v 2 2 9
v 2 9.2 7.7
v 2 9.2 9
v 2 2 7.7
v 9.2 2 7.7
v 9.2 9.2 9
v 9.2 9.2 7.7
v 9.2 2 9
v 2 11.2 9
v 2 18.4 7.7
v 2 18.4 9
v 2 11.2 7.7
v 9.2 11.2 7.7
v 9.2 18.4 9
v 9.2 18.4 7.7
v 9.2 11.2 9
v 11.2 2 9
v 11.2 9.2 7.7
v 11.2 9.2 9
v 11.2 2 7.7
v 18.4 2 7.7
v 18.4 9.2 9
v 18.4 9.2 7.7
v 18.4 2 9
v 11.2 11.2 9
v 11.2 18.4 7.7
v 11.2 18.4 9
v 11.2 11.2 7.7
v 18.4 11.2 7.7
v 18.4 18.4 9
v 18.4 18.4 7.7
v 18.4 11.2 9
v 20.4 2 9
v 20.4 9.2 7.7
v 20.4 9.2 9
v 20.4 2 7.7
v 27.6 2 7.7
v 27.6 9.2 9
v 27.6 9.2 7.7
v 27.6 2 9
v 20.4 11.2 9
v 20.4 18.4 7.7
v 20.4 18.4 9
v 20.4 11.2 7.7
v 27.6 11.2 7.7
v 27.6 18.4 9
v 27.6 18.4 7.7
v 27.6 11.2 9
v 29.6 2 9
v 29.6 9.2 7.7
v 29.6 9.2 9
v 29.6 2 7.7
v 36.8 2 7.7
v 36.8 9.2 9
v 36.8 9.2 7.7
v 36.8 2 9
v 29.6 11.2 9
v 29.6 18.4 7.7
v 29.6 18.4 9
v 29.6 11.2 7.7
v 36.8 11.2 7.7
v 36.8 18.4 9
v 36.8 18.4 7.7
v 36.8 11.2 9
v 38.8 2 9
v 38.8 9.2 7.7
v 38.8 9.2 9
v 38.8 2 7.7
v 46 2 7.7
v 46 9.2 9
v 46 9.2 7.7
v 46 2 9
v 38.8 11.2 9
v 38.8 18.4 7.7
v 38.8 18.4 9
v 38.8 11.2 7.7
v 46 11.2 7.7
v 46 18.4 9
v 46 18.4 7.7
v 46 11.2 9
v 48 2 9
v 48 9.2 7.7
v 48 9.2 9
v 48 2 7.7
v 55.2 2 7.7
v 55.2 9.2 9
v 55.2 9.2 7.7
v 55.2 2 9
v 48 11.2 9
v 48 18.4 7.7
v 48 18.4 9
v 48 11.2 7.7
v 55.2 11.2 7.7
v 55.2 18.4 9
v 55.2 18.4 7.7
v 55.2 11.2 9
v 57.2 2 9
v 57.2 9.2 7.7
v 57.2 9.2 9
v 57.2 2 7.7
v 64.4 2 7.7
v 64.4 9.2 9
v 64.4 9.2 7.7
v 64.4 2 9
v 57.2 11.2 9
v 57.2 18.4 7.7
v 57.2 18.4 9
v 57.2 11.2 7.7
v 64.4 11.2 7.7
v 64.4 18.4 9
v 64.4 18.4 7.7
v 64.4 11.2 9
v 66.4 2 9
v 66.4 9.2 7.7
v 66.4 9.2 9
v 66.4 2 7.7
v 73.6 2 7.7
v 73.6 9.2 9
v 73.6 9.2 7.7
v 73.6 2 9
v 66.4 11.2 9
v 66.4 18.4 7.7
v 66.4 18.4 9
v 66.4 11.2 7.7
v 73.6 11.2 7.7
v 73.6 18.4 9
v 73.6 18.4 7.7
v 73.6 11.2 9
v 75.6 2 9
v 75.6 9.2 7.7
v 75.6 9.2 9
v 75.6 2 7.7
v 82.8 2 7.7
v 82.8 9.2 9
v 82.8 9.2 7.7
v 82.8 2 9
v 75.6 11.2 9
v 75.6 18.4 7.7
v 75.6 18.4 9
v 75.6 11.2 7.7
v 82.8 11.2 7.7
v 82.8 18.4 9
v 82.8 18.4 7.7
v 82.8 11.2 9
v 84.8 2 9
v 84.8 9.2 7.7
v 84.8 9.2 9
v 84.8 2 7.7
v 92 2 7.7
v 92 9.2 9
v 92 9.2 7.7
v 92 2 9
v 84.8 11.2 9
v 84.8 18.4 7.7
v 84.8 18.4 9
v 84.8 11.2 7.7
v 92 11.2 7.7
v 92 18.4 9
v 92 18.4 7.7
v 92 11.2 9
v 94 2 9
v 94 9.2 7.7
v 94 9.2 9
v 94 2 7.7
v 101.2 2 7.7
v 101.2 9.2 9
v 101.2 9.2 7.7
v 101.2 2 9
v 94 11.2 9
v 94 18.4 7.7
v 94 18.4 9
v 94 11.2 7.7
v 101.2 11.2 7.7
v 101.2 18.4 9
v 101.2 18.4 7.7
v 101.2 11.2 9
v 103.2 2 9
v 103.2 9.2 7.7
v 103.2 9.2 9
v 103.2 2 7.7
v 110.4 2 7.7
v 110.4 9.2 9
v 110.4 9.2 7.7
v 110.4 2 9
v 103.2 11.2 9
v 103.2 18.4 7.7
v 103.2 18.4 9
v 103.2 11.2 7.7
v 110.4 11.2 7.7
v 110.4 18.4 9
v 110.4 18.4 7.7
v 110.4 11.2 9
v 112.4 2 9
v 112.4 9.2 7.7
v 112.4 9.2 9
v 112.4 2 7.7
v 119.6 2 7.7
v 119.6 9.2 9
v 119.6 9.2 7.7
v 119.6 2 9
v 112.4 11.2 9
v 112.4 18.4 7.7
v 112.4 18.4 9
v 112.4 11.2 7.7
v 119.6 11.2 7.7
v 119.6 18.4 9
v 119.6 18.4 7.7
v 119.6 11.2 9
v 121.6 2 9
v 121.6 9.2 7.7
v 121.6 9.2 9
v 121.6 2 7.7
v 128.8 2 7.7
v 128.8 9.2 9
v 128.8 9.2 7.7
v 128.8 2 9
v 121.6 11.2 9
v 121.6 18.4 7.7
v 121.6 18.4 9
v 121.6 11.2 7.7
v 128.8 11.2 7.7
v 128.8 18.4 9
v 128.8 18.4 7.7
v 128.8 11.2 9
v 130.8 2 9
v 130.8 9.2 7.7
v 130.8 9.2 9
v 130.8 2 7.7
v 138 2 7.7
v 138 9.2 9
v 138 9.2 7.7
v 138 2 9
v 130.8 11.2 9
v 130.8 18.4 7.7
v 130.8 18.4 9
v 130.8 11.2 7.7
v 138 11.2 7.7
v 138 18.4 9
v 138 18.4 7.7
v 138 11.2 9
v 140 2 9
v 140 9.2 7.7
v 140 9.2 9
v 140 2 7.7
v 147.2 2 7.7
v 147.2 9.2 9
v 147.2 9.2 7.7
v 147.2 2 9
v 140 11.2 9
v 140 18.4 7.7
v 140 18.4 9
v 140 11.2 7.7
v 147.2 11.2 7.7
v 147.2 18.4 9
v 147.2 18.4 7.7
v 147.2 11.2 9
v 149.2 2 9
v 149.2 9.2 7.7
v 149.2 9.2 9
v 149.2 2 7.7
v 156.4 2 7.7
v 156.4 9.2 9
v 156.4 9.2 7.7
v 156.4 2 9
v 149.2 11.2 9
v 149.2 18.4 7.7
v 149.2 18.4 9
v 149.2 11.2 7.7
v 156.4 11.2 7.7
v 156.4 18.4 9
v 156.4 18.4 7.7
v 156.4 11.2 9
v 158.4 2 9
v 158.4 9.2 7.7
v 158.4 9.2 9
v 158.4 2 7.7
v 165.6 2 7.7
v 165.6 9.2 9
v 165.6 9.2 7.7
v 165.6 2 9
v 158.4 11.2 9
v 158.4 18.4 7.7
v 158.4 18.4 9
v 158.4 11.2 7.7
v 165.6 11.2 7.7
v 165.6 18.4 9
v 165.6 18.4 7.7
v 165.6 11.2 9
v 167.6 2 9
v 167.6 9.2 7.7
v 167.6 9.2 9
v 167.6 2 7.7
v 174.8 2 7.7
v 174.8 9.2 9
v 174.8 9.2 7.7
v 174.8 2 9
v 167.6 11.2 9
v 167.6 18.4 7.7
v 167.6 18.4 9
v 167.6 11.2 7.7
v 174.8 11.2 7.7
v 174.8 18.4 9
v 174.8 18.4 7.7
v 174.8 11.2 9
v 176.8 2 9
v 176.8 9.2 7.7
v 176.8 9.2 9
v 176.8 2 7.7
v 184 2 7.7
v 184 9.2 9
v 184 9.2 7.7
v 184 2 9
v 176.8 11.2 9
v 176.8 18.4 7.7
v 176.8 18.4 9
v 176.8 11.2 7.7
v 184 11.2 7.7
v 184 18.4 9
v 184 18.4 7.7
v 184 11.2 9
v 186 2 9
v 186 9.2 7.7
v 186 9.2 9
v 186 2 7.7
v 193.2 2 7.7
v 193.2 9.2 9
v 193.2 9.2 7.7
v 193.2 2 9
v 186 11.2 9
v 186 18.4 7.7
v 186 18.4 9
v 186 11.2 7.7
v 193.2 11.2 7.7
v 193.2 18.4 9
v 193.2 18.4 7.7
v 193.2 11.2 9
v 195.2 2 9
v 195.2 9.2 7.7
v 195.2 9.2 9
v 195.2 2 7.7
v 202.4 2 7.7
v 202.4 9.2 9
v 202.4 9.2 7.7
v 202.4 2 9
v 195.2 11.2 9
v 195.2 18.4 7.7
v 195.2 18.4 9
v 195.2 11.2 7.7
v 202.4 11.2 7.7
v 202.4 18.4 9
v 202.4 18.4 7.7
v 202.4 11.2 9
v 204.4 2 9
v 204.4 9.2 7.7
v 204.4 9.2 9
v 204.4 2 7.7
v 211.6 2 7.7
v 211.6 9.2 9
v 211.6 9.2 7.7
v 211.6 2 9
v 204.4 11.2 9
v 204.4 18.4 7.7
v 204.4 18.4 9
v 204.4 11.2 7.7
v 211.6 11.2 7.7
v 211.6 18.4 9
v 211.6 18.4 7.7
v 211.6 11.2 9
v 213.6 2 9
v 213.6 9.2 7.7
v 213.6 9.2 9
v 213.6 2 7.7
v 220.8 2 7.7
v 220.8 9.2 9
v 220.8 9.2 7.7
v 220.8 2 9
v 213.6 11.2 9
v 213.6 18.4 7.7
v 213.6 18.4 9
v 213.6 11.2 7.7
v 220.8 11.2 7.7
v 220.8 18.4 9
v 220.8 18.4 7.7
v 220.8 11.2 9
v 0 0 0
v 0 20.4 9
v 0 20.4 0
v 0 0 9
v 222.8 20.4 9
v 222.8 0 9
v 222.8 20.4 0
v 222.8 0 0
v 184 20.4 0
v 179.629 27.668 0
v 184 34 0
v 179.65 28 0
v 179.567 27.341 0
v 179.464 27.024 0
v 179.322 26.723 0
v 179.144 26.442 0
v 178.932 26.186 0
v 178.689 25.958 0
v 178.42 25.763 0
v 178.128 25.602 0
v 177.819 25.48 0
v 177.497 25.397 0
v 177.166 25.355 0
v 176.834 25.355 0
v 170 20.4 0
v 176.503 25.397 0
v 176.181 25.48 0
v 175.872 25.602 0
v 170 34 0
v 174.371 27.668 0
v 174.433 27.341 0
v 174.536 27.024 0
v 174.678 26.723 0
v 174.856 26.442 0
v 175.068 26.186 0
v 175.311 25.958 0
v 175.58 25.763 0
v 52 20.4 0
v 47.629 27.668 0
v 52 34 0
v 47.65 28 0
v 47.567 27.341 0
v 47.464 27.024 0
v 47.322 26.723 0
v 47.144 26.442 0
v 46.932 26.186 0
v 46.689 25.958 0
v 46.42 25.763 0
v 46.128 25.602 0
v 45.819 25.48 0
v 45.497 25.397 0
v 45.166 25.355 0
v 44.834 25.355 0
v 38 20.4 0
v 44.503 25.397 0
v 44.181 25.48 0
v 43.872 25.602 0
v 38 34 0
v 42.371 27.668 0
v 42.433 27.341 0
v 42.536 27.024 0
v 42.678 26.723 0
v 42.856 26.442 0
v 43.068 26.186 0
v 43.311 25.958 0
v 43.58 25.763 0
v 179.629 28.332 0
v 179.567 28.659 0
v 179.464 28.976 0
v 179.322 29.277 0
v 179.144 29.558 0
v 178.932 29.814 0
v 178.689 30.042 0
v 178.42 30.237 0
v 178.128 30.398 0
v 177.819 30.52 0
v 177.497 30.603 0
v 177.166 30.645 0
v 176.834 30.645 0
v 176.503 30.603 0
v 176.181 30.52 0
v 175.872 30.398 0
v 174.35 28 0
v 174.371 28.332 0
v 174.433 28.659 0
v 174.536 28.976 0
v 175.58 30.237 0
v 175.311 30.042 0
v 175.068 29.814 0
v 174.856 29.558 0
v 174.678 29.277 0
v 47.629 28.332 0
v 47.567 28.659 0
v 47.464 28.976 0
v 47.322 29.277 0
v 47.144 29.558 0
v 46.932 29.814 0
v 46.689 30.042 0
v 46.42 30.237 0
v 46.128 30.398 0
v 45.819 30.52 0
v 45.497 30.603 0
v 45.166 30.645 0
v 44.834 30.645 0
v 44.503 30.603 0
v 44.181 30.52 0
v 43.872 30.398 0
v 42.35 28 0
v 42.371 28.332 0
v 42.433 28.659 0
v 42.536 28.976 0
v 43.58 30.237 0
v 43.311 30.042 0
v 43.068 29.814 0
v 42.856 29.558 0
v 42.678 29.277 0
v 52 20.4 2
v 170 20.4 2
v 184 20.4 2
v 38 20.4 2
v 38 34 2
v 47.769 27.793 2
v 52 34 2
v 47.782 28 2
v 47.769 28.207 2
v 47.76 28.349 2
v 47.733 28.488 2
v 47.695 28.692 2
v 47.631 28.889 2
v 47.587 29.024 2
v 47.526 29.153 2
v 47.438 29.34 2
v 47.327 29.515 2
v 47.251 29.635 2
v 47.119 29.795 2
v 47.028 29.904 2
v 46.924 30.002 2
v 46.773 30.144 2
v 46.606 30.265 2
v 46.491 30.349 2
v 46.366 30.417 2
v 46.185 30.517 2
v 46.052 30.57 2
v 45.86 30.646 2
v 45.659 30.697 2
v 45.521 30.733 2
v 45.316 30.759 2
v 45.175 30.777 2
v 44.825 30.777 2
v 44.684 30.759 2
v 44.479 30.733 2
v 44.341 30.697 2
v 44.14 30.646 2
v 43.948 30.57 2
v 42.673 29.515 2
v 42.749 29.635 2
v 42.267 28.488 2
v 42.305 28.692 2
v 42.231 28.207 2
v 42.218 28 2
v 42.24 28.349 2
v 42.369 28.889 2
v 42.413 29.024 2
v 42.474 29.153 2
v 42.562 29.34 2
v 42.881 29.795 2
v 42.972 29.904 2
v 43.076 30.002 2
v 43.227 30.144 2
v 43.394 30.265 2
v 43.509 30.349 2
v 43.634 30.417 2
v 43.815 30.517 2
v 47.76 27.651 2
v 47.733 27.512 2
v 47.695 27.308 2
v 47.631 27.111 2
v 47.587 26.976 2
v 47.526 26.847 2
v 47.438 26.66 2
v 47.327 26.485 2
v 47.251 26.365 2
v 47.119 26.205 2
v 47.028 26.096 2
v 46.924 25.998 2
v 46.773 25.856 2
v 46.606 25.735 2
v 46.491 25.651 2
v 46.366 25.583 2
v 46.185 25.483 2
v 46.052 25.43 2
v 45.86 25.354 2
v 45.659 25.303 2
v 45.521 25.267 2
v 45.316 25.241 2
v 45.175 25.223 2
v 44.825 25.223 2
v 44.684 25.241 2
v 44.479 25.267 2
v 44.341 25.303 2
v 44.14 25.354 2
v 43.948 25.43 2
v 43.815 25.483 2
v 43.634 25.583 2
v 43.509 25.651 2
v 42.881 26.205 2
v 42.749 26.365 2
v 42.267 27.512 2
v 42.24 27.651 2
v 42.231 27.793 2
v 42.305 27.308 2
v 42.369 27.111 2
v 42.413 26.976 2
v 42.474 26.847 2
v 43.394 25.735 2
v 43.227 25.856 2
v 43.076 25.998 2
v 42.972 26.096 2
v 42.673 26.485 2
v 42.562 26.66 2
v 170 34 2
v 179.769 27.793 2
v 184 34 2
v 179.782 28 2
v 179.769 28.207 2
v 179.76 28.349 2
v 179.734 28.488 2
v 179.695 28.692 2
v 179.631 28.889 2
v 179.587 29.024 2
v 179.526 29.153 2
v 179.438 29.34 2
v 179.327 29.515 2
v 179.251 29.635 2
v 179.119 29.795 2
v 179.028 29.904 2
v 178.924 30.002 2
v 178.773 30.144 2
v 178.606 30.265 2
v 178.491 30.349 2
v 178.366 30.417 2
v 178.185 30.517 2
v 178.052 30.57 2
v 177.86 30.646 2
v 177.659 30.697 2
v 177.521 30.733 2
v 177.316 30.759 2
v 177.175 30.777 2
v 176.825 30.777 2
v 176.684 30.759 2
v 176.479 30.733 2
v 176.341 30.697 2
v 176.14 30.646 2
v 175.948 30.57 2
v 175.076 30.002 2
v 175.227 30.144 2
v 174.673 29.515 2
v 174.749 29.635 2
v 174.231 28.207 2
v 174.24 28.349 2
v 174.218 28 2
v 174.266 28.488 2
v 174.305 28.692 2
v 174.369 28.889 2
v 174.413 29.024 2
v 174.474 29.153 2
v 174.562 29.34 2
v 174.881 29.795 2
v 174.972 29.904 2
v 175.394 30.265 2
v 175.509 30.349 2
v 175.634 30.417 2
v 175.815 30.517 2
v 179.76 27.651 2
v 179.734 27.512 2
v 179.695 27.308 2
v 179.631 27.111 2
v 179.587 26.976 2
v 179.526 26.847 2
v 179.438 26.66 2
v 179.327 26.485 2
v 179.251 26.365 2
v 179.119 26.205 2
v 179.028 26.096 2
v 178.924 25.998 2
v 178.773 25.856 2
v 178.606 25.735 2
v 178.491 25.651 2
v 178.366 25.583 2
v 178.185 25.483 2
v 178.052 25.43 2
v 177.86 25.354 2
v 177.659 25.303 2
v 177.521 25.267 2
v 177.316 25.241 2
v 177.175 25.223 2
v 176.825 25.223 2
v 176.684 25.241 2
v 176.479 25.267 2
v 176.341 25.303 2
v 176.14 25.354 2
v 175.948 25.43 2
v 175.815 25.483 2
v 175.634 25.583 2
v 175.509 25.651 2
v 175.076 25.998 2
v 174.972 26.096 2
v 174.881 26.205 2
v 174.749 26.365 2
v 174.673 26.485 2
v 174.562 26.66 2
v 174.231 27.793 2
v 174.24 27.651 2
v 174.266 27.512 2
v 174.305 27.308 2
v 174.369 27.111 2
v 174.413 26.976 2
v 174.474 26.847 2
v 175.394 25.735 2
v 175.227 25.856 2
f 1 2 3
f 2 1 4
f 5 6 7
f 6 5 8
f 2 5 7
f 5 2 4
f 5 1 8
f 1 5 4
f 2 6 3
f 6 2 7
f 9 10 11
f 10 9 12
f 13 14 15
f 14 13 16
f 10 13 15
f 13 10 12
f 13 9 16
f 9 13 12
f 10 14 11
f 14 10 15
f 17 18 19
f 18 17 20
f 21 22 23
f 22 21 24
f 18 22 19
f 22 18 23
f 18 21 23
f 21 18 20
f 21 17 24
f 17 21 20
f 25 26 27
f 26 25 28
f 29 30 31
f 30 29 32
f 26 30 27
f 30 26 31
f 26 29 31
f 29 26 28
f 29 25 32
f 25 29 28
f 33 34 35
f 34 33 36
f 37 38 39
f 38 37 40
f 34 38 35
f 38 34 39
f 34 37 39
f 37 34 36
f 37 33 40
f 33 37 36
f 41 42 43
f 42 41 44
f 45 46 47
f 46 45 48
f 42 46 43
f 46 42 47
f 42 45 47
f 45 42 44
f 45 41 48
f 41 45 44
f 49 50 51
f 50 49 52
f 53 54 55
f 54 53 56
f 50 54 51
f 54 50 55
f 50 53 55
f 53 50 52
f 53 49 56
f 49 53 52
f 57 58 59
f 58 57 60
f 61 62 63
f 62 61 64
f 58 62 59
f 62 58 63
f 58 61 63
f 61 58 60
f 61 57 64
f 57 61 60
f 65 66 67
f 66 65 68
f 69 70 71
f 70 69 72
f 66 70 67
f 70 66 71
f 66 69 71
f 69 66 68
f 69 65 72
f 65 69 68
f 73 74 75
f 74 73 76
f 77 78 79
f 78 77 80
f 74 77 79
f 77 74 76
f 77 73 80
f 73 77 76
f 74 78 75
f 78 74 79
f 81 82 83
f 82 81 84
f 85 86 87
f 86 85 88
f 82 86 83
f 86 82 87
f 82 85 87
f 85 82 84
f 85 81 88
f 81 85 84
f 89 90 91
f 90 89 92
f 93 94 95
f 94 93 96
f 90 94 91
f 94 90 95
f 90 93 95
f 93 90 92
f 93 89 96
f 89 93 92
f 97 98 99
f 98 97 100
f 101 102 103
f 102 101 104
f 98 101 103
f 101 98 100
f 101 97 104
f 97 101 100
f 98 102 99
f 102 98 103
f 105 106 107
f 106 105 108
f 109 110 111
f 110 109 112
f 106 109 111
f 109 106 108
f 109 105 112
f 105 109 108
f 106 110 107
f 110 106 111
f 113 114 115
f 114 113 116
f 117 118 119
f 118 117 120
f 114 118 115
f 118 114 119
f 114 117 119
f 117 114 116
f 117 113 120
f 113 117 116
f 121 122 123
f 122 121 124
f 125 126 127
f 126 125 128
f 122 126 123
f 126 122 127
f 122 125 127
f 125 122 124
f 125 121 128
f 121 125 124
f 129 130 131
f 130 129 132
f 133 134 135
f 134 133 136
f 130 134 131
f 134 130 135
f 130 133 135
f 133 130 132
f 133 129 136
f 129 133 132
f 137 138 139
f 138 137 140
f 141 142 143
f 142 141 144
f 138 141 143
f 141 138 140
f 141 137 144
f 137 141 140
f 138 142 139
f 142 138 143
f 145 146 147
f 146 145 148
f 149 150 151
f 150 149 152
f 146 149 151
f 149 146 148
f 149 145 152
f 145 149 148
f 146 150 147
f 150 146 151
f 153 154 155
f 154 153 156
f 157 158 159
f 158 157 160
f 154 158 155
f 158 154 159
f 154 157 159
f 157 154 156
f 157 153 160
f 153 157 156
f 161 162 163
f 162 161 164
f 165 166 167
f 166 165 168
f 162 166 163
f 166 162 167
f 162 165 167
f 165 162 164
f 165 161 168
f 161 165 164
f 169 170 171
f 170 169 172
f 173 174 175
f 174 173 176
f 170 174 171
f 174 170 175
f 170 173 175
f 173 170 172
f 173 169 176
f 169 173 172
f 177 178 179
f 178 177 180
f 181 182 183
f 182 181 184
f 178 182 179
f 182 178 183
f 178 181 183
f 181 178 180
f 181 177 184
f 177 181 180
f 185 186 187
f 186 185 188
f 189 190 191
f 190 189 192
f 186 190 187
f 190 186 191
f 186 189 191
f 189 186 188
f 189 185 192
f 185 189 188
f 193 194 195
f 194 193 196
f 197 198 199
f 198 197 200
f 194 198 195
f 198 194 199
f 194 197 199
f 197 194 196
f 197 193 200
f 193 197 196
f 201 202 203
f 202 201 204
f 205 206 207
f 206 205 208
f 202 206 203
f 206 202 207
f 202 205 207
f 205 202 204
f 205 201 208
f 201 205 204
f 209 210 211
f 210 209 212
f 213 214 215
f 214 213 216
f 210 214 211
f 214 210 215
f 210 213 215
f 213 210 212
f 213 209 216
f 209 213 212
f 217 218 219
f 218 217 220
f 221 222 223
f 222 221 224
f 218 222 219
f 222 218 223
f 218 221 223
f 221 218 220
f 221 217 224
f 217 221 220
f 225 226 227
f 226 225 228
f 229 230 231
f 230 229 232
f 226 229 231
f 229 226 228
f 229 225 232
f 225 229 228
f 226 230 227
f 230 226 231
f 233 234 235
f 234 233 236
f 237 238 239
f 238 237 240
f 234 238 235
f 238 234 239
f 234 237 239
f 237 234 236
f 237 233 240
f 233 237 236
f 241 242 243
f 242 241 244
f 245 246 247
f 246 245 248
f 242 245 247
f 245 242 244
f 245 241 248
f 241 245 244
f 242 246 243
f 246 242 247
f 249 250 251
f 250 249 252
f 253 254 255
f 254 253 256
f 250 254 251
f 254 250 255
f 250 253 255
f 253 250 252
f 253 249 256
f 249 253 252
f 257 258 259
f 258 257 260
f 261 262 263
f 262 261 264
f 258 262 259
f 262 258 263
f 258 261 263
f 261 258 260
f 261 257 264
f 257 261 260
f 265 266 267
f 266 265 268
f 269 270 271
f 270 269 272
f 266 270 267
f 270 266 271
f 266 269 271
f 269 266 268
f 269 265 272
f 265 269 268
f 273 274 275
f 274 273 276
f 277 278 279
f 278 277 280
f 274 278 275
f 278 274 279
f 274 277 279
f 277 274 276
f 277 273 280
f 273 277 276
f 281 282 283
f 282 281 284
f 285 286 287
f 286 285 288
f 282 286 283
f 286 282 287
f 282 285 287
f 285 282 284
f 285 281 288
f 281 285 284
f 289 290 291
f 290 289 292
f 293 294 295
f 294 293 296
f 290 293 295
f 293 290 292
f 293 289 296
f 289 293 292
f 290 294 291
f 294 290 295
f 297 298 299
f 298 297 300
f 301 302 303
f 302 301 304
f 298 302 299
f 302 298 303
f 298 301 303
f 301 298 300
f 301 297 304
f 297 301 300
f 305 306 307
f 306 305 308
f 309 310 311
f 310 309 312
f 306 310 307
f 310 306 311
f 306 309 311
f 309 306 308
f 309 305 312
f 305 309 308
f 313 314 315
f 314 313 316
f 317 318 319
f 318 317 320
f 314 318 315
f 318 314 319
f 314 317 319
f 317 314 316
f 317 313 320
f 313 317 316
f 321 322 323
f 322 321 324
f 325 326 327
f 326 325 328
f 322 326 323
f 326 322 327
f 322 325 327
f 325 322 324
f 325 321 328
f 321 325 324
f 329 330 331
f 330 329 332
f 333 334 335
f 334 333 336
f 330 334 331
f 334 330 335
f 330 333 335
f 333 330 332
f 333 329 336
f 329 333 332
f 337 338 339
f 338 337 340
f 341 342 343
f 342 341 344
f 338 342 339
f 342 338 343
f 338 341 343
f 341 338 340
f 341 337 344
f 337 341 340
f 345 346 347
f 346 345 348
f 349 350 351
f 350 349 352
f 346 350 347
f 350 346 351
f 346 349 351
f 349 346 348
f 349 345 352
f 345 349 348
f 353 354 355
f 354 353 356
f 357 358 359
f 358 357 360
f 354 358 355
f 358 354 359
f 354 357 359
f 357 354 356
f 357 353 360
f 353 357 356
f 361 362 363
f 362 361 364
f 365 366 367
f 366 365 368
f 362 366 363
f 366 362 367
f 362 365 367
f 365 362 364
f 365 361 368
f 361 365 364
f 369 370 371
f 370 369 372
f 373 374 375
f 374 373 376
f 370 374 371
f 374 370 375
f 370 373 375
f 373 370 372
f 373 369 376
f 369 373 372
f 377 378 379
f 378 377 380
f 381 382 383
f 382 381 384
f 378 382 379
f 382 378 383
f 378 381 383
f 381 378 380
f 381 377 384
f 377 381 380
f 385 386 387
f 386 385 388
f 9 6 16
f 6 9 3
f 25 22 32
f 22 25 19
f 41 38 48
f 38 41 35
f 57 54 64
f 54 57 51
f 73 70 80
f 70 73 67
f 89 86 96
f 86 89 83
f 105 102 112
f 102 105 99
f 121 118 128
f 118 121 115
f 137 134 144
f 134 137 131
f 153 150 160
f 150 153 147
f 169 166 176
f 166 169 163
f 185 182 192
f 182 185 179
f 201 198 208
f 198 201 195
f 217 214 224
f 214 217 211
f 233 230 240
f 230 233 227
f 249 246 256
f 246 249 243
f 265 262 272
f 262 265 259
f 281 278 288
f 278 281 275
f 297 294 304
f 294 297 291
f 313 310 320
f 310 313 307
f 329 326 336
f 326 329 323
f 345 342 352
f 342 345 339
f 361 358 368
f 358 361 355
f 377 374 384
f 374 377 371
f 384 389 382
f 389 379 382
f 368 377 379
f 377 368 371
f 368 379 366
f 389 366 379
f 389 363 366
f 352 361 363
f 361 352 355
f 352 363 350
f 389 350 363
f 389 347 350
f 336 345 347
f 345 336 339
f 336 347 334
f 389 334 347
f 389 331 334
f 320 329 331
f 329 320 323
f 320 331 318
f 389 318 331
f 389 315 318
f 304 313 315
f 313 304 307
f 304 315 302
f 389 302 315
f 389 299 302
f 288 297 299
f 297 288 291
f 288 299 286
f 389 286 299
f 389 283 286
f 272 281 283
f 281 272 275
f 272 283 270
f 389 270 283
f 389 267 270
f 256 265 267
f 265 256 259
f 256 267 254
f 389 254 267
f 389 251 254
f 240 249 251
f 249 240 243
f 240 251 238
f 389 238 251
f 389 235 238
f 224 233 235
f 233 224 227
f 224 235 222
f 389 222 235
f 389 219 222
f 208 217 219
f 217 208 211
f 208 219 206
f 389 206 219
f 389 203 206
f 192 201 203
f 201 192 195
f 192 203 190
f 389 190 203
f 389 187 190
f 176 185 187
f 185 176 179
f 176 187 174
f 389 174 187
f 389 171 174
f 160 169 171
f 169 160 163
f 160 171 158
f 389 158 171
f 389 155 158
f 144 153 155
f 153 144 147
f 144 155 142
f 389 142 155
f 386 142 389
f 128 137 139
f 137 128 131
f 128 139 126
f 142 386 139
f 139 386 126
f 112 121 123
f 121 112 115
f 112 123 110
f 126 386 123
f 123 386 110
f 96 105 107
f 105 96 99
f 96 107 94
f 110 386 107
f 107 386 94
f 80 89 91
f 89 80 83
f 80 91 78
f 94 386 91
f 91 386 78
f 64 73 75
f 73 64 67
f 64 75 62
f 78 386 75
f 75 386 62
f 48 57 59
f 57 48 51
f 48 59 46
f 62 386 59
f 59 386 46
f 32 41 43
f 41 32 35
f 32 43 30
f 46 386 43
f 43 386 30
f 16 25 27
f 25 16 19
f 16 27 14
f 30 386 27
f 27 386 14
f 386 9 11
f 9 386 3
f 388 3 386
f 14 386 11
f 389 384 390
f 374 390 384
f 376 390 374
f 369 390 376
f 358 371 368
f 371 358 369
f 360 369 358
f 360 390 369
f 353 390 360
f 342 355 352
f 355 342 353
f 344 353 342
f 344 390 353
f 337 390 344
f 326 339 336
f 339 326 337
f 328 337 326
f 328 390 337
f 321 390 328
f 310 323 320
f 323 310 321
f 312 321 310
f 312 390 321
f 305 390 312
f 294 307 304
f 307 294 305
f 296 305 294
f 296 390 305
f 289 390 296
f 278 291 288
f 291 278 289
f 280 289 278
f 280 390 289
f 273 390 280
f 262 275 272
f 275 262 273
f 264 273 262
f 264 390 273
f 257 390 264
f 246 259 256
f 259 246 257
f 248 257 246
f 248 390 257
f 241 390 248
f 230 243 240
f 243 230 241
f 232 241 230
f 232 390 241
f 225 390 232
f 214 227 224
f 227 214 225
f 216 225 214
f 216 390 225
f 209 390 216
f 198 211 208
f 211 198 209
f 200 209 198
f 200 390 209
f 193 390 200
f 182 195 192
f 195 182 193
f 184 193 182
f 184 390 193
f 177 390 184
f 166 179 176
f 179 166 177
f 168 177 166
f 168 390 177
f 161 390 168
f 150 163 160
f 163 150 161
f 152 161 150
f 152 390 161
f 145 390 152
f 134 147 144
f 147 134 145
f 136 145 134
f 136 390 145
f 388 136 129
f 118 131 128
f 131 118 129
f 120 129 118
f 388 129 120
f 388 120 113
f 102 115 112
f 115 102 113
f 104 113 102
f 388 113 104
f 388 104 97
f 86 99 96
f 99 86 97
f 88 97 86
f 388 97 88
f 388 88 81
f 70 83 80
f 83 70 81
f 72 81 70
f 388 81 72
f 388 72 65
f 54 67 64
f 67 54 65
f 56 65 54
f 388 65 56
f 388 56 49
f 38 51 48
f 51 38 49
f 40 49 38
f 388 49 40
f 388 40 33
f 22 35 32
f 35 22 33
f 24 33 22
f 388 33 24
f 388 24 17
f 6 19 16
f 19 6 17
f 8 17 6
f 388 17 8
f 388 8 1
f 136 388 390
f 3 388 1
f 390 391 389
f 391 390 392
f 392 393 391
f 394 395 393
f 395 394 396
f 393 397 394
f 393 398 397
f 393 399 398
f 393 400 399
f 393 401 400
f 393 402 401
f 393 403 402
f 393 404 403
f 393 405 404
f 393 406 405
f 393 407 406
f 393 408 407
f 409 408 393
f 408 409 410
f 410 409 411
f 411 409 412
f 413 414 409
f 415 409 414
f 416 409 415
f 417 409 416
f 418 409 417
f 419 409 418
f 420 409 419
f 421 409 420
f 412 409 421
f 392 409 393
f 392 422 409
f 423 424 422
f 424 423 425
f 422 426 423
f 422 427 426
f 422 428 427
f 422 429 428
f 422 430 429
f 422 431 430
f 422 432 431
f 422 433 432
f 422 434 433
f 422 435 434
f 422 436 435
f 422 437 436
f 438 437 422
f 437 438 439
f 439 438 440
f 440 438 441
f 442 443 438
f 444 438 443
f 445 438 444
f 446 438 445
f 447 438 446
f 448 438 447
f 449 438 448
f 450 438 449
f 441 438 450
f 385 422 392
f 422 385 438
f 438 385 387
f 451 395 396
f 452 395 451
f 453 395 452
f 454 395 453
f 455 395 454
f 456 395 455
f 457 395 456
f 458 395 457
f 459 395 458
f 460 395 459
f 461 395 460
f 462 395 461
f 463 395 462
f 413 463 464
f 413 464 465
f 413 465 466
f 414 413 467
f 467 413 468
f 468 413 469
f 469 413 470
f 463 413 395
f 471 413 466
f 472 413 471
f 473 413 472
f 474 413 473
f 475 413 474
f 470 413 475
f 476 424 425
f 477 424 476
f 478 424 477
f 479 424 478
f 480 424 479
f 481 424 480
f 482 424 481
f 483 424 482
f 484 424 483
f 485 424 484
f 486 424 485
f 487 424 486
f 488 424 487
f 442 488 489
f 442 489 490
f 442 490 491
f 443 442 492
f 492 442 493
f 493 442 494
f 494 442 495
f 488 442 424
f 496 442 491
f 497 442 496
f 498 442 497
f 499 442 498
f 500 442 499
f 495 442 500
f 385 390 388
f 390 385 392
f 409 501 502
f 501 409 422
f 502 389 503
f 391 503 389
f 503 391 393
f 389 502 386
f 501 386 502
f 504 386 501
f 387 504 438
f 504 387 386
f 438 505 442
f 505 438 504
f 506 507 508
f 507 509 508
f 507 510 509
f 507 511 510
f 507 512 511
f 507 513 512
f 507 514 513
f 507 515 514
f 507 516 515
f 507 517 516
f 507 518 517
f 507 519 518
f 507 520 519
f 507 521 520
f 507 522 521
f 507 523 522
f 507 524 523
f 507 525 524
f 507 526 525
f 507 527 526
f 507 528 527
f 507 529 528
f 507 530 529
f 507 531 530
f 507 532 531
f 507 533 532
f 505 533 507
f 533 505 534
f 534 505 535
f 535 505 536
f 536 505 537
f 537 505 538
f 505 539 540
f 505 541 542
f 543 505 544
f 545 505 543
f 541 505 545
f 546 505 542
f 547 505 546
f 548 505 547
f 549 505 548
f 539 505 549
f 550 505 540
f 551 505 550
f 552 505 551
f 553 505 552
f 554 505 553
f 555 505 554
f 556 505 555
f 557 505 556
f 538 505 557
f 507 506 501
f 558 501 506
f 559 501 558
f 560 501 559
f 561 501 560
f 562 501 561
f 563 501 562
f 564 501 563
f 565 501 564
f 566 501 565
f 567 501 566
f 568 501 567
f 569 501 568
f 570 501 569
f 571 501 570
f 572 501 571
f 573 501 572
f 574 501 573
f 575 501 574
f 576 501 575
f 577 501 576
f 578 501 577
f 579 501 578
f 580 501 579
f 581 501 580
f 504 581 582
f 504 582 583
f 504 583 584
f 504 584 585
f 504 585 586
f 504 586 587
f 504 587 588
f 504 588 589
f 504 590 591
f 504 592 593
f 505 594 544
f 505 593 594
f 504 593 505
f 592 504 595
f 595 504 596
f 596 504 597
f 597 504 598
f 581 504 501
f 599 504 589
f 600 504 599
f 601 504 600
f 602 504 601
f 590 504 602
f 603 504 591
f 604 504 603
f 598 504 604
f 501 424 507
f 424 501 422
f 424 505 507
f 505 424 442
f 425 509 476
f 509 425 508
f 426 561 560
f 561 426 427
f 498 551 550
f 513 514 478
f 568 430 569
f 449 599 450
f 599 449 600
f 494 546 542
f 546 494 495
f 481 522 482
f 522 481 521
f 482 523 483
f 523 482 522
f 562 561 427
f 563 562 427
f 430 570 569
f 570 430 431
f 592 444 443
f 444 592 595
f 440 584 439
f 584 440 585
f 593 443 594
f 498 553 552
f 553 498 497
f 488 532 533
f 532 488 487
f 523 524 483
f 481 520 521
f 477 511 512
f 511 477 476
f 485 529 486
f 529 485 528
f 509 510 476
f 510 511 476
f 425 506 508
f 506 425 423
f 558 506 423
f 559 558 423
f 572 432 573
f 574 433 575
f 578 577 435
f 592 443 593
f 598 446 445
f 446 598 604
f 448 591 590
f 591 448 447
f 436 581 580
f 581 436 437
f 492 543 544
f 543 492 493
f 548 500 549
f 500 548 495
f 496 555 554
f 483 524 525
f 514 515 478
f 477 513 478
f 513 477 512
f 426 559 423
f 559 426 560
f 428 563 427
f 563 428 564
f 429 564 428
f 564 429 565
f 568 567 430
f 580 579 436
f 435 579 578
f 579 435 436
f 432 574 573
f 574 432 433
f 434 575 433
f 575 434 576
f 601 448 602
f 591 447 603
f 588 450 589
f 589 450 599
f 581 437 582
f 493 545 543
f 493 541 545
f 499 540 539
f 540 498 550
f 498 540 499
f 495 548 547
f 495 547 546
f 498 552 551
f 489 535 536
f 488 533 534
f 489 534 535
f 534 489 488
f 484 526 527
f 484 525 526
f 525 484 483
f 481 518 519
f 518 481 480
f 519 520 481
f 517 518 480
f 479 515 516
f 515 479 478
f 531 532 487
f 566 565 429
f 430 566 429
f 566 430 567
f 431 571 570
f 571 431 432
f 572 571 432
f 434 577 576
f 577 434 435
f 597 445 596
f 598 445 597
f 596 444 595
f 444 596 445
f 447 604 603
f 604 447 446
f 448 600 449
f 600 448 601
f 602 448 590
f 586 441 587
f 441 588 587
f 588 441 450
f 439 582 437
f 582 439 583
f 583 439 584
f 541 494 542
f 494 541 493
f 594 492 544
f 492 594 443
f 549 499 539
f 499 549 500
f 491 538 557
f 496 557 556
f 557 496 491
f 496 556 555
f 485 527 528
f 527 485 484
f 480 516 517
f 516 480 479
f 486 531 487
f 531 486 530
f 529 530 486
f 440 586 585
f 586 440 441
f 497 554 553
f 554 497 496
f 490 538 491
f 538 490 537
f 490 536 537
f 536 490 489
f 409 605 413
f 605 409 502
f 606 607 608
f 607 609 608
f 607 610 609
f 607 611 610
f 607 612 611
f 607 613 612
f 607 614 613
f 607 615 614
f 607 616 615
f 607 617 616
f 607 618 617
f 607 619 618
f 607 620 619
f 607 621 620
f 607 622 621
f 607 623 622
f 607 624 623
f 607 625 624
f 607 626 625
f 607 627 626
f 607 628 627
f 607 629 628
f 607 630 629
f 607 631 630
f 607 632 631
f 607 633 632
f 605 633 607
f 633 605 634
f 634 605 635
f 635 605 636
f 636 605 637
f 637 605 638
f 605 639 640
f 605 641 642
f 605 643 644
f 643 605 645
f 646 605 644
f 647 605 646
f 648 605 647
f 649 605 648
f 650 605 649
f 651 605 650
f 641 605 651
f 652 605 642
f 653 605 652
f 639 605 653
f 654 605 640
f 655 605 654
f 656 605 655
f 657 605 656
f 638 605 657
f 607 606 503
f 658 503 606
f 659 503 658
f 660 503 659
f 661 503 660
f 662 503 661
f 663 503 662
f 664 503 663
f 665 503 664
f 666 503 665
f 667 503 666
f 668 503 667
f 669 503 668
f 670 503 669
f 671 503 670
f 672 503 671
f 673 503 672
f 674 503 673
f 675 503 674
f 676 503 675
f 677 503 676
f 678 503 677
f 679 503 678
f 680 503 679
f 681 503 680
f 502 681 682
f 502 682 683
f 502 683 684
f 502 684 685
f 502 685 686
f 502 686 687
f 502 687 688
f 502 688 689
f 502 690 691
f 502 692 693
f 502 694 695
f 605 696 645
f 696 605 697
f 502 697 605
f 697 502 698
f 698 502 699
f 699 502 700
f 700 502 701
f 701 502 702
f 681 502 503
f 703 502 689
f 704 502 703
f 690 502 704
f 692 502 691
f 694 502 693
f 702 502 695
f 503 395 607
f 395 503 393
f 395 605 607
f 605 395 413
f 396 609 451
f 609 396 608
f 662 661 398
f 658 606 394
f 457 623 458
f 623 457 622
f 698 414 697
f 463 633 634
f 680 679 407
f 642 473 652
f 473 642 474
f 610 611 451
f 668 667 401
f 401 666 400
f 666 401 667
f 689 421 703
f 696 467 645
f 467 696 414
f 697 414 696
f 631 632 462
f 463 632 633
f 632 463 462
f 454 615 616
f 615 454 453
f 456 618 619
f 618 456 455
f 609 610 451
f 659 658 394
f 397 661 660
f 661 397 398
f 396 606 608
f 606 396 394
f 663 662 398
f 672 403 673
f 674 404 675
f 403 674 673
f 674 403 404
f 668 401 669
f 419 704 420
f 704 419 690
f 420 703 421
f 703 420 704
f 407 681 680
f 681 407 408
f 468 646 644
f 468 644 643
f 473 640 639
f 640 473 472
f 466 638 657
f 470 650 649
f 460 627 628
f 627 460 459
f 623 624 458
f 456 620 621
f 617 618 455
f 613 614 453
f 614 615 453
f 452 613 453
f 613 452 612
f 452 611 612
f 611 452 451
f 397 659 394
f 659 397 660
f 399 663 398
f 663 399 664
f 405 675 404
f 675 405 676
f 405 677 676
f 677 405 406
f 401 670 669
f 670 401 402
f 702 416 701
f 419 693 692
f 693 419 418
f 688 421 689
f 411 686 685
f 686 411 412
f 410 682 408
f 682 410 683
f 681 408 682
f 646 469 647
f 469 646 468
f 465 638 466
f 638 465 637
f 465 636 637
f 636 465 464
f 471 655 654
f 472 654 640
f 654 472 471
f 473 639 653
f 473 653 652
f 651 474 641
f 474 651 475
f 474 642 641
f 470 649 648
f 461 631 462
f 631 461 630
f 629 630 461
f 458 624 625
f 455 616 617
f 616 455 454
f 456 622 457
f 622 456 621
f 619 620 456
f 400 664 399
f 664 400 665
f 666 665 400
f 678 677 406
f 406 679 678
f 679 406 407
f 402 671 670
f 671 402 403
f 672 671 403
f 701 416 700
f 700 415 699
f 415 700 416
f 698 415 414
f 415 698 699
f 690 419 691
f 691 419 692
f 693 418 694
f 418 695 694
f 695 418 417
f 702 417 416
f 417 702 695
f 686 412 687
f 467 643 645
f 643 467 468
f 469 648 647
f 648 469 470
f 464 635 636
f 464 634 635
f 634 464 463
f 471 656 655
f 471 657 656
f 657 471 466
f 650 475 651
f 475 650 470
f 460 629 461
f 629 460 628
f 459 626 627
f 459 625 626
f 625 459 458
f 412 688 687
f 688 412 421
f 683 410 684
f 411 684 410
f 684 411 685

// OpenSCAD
$fn=50;

//countx, county - element count on X and Y axes
//isolx, isoly - clearance parameters
//size{x,y,z} - part size
//frmborder - whole tray border (frame)
//pheight - tray height
//center - center tray (1 - on, 0 - off)

module smdholderplate(countx, county, isolx, isoly, sizex, sizey, sizez, frmborder, pheight, center)
{
	fx = countx * sizex + (countx - 1) * isolx + 2 * frmborder;
	fy =  county * sizey + (county - 1) * isoly + 2 * frmborder;
	echo(fx);
	echo(fy);
	translate([center*(-fx/2), center*(-fy/2), 0])
	difference() {
		cube([fx, fy, pheight]);
		for(x = [1:countx]) {
			for(y = [1:county]) {
				translate([ frmborder + (x - 1) * sizex + (x -1) * isolx,
						frmborder + (y - 1) * sizey + (y -1) * isoly,
						pheight - sizez + 0.1]) cube([sizex, sizey, sizez]);
			}
		}
	}
}

smdholderplate(
    countx=24,
    county=2,
    isolx=2,
    isoly=2,
    sizex=7.2,
    sizey=7.2,
    sizez=1.4,
    frmborder=2,
    pheight=9,
    center=0);

difference(){
translate([38, 20, 0]) cube([14, 14, 2]);
translate([45, 28, 0]) cylinder(5.3, 2.65, 3);
}


difference(){
translate([170, 20, 0]) cube([14, 14, 2]);
translate([177, 28, 0]) cylinder(5.3, 2.65, 3);
}
